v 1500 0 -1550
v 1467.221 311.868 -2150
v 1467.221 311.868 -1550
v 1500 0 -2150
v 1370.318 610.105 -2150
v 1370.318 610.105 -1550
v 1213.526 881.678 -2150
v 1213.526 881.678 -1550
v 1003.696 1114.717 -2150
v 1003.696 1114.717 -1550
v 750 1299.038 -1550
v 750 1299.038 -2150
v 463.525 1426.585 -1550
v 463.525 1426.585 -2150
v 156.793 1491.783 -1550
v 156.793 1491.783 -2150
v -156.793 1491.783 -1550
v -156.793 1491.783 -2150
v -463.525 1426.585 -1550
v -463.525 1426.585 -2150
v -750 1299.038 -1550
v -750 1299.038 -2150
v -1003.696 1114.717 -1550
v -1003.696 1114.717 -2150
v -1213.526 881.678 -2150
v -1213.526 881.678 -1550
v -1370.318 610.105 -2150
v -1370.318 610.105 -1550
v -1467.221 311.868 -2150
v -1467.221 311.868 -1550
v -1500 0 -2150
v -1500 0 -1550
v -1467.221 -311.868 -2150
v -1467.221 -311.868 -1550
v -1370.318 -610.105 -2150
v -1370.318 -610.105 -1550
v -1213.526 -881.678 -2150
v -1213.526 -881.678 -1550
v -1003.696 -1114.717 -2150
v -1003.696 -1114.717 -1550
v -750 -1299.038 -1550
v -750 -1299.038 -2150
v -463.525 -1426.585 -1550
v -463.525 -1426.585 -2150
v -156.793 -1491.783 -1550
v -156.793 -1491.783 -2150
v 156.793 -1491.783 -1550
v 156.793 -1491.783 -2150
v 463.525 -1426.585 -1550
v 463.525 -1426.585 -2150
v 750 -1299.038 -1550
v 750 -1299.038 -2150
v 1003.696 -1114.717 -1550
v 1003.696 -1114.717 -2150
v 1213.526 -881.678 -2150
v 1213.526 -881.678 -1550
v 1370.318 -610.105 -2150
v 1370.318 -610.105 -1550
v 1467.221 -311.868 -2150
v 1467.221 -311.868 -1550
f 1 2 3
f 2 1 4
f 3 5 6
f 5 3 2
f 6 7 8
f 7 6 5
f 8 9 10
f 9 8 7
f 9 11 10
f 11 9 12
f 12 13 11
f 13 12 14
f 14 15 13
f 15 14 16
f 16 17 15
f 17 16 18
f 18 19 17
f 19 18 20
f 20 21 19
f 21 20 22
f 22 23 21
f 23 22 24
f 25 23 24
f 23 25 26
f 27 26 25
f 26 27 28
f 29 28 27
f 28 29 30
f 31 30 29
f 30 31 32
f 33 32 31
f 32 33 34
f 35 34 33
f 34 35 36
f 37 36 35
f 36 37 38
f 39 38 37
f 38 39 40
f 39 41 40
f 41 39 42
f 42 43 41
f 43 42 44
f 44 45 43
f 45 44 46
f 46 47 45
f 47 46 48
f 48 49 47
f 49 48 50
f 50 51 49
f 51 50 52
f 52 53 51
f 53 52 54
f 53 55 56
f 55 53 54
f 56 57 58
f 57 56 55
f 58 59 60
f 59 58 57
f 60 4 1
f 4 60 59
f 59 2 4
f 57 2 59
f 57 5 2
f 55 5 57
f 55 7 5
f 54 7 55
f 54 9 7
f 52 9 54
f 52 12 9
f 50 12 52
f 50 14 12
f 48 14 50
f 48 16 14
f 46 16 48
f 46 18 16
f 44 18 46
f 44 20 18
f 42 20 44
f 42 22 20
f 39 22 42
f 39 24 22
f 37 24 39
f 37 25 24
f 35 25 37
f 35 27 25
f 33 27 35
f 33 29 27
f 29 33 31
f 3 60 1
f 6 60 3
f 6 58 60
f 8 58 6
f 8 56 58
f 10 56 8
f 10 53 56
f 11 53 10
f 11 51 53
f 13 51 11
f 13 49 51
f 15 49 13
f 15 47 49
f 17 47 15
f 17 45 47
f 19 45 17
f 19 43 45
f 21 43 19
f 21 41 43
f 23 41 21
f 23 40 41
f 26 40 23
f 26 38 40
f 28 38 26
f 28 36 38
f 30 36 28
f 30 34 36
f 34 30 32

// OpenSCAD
color("#adb1b3")
translate([0, 0, -300-1550.])
  cylinder( h=600, d=3000, center=true);
